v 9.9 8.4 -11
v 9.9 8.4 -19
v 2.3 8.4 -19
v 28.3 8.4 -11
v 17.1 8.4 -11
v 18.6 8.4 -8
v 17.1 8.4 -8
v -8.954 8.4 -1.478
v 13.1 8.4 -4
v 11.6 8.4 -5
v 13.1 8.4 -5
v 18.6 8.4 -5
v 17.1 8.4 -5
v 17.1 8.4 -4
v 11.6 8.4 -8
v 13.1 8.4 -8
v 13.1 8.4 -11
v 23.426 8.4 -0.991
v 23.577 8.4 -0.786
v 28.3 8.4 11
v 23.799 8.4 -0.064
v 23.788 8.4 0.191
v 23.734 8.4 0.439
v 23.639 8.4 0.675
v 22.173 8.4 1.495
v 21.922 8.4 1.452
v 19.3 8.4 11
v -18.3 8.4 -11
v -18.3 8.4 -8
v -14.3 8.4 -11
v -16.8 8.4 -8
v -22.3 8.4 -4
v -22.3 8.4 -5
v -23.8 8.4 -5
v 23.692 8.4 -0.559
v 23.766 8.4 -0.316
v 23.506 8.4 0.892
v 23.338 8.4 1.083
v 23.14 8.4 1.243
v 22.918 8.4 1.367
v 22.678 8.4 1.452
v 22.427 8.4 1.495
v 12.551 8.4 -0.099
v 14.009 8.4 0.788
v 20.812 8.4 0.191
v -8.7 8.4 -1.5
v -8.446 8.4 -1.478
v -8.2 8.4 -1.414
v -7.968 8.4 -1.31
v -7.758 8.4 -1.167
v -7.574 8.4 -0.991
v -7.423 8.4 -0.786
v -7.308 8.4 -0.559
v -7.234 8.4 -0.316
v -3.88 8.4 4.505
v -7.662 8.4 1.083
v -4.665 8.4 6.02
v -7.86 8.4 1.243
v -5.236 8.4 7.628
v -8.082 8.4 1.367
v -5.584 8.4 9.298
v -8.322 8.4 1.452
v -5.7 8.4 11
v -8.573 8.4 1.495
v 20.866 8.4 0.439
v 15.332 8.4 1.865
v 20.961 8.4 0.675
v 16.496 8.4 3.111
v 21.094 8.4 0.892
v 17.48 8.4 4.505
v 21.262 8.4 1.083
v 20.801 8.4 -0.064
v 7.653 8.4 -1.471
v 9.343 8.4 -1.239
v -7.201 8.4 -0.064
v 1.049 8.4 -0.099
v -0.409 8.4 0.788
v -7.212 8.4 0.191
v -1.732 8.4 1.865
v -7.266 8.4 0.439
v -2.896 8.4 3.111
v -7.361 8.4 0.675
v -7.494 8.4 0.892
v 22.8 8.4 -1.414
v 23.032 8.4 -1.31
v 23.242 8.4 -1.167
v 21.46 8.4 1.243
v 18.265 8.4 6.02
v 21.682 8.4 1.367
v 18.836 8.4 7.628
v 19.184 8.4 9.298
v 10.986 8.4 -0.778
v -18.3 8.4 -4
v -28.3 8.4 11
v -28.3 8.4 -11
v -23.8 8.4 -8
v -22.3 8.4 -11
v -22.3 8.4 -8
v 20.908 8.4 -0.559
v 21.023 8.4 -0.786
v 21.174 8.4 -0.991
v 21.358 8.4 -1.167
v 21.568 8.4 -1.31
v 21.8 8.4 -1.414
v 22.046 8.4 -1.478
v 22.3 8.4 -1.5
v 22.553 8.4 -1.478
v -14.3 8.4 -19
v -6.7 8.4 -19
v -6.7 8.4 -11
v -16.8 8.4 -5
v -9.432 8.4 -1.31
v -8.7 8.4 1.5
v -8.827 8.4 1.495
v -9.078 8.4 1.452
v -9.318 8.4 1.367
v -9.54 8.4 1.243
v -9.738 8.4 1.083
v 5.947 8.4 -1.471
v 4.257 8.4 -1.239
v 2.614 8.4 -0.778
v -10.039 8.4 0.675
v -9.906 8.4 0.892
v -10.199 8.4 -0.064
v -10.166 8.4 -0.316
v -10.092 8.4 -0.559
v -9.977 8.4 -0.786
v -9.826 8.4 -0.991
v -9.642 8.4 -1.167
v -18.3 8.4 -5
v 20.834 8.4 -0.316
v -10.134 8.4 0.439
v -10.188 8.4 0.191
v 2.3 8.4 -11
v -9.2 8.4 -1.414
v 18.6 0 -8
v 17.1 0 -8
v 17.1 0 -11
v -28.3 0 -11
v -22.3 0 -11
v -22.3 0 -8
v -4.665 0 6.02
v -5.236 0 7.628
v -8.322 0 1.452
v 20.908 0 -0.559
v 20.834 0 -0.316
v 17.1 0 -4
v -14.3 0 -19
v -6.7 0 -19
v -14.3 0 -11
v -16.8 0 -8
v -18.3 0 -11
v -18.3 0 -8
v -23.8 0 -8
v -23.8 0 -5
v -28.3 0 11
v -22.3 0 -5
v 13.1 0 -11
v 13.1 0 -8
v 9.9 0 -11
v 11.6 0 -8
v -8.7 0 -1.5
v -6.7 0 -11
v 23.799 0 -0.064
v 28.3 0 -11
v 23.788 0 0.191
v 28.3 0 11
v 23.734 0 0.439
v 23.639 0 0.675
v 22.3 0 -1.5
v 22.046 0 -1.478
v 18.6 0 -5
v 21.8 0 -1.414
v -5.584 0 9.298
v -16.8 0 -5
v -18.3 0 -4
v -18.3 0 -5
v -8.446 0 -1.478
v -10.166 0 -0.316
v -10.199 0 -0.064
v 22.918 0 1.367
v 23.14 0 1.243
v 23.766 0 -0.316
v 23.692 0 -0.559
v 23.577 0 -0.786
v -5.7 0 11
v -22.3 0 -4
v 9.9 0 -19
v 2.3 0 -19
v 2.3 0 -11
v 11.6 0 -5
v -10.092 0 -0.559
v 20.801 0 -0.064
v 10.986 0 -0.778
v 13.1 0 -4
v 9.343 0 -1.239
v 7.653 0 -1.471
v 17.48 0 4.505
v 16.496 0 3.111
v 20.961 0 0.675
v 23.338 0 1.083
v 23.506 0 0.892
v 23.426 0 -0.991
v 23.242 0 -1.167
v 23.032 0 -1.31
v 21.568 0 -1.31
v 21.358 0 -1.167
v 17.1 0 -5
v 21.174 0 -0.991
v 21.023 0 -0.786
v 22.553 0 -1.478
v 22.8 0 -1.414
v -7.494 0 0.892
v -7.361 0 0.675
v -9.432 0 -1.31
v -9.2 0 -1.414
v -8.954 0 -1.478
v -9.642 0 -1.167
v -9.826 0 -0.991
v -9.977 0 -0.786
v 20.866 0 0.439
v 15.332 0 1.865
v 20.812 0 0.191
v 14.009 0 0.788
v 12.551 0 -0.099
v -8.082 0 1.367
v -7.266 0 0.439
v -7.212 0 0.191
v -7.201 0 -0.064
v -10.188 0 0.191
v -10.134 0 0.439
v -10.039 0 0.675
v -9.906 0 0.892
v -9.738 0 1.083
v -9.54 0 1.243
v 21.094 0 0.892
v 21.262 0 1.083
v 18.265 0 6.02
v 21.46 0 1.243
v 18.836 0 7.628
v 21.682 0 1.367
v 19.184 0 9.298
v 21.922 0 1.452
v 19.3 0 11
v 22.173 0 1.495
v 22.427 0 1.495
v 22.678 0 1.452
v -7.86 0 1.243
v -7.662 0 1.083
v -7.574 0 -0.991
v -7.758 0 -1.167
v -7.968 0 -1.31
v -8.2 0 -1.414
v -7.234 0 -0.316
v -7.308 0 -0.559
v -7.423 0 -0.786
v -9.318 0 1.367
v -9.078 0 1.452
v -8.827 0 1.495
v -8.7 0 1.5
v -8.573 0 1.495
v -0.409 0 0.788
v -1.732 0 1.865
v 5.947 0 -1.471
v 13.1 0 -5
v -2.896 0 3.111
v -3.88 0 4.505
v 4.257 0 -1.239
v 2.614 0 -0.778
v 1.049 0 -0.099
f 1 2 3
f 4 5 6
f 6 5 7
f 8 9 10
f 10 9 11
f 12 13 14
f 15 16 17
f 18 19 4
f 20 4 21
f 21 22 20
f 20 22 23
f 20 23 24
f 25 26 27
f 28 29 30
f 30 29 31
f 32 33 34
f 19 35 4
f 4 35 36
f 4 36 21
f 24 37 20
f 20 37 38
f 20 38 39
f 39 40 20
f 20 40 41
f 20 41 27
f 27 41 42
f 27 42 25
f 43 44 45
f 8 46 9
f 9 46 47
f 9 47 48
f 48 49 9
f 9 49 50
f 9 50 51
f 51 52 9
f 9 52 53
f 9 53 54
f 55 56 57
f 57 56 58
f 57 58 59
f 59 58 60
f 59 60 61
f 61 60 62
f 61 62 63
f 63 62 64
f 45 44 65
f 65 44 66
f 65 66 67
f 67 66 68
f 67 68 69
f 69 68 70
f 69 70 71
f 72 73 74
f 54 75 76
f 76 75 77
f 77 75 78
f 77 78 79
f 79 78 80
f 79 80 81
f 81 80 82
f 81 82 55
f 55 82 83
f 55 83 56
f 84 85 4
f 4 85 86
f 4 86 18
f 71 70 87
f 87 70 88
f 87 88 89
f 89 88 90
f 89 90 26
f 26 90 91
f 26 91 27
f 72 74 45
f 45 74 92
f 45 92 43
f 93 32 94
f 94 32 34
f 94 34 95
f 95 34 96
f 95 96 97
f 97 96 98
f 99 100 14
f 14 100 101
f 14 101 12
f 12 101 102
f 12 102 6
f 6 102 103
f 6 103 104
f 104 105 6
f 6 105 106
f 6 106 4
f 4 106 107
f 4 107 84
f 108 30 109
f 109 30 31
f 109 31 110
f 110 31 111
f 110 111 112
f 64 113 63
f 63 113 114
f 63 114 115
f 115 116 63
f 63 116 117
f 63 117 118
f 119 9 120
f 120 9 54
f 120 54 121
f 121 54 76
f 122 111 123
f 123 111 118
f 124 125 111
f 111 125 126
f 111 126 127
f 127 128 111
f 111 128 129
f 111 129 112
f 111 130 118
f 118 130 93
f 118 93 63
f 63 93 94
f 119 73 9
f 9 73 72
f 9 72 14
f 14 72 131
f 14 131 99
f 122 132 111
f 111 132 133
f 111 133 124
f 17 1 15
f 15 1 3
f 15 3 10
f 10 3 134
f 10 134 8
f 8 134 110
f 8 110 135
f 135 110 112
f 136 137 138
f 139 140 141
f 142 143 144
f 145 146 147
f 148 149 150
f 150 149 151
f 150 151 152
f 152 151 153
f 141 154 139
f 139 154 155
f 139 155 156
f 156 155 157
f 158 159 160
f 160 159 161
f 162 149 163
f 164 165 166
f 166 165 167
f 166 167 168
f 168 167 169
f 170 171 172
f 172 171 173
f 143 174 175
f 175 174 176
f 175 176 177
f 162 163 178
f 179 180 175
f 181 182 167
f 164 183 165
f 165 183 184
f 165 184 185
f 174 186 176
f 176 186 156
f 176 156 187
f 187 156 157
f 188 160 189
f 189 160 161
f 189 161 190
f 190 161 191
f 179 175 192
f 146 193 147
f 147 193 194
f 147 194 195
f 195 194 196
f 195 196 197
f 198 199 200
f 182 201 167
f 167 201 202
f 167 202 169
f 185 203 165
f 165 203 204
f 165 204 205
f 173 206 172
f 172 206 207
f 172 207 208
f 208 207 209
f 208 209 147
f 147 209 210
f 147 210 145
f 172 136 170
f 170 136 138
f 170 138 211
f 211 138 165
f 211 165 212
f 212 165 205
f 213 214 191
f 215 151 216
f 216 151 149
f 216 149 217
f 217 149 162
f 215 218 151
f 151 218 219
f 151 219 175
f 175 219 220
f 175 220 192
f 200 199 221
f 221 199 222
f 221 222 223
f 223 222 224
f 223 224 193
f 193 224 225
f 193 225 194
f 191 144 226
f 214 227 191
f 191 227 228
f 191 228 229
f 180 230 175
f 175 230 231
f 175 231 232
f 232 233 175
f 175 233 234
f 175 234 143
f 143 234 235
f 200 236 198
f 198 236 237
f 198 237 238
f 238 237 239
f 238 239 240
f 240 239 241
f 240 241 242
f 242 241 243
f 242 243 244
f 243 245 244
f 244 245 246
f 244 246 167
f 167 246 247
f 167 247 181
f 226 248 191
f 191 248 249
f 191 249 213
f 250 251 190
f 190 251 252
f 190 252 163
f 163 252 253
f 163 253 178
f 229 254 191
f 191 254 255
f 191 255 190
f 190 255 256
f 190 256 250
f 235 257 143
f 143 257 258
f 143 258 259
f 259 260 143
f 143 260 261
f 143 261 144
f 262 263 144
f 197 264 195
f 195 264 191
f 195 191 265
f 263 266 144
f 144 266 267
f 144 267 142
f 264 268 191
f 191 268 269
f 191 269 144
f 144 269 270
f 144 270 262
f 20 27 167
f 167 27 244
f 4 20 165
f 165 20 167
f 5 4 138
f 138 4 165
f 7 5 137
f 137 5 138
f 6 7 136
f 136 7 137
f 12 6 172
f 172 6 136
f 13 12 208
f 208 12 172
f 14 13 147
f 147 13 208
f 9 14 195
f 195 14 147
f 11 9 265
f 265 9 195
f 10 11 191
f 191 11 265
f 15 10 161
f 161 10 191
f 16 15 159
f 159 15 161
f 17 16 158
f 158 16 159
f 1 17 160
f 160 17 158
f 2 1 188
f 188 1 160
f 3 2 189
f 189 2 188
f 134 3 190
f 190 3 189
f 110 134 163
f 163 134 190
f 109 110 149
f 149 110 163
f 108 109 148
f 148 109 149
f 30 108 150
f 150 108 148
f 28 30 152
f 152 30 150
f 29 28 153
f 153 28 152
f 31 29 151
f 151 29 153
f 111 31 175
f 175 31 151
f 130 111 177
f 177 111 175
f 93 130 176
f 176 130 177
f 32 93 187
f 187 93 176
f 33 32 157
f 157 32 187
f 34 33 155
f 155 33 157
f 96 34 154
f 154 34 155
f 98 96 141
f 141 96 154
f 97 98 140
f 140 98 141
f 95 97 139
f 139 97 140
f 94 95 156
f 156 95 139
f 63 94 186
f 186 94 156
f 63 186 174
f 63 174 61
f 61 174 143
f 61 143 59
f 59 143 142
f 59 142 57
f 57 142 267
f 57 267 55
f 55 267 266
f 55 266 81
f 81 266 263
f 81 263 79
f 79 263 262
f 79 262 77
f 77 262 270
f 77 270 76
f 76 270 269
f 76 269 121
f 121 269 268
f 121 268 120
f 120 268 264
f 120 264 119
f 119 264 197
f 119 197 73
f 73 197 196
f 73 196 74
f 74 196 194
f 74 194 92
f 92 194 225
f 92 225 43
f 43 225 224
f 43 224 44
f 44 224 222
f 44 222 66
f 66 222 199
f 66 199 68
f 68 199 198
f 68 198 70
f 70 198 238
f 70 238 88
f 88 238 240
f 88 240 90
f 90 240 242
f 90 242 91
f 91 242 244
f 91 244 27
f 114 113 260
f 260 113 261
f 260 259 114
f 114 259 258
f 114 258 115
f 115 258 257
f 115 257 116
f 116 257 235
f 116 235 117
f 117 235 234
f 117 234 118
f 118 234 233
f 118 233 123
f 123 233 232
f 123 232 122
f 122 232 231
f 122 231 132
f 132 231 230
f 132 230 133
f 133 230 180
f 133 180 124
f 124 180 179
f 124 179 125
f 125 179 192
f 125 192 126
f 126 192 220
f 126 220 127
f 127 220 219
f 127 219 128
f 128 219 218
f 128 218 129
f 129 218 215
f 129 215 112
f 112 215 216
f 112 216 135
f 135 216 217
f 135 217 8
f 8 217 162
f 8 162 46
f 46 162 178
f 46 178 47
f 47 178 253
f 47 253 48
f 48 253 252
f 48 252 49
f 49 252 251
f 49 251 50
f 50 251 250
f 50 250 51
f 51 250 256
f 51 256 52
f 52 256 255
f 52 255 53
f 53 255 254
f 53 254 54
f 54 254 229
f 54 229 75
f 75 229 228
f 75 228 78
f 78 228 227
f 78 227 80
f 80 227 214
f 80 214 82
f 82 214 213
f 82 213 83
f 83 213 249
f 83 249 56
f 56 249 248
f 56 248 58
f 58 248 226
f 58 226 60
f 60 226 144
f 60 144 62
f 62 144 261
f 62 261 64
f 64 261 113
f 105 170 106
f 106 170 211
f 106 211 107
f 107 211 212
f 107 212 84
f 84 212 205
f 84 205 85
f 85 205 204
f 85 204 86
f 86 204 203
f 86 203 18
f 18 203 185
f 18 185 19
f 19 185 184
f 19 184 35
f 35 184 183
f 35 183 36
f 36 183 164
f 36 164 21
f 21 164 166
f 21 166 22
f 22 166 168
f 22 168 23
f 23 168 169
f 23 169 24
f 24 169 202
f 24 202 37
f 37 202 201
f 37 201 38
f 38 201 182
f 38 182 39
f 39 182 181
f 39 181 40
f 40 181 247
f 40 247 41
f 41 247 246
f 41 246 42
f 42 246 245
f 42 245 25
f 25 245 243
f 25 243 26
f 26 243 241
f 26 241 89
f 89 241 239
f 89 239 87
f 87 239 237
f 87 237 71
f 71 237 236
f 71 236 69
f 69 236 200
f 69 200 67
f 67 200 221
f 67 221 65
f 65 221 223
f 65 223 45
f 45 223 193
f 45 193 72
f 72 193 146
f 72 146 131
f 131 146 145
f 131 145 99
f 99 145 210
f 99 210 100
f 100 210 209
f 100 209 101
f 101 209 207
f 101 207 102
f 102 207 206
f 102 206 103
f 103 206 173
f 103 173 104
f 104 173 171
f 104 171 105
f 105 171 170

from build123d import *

# Parameters (mm, degrees)
SKETCH1_R           = 1.5
BOSS_EXTRUDE1_DEPTH = 8.4


with BuildPart() as part:
    # Sketch1 → Boss-Extrude1 (new body)
    with BuildSketch(Plane(origin=(0, 0, 0), x_dir=(1, 0, 0), z_dir=(0, 1, 0))):
        with BuildLine():
            Line((-28.3, 11), (-22.3, 11))
            Line((-22.3, 11), (-22.3, 8))
            Line((-22.3, 8), (-23.8, 8))
            Line((-23.8, 8), (-23.8, 5))
            Line((-23.8, 5), (-22.3, 5))
            Line((-22.3, 5), (-22.3, 4))
            Line((-22.3, 4), (-18.3, 4))
            Line((-18.3, 4), (-18.3, 5))
            Line((-18.3, 5), (-16.8, 5))
            Line((-16.8, 5), (-16.8, 8))
            Line((-16.8, 8), (-18.3, 8))
            Line((-18.3, 8), (-18.3, 11))
            Line((-18.3, 11), (-14.3, 11))
            Line((-14.3, 11), (-14.3, 19))
            Line((-14.3, 19), (-6.7, 19))
            Line((-6.7, 19), (-6.7, 11))
            Line((-6.7, 11), (2.3, 11))
            Line((2.3, 11), (2.3, 19))
            Line((2.3, 19), (9.9, 19))
            Line((9.9, 19), (9.9, 11))
            Line((9.9, 11), (13.1, 11))
            Line((13.1, 11), (13.1, 8))
            Line((13.1, 8), (11.6, 8))
            Line((11.6, 8), (11.6, 5))
            Line((11.6, 5), (13.1, 5))
            Line((13.1, 5), (13.1, 4))
            Line((13.1, 4), (17.1, 4))
            Line((17.1, 4), (17.1, 5))
            Line((17.1, 5), (18.6, 5))
            Line((18.6, 5), (18.6, 8))
            Line((18.6, 8), (17.1, 8))
            Line((17.1, 8), (17.1, 11))
            Line((17.1, 11), (28.3, 11))
            Line((28.3, 11), (28.3, -11))
            Line((28.3, -11), (19.3, -11))
            ThreePointArc((19.3, -11), (6.8, 1.5), (-5.7, -11))
            Line((-5.7, -11), (-28.3, -11))
            Line((-28.3, -11), (-28.3, 11))
        make_face()
        with Locations((-8.7, 0)):
            Circle(SKETCH1_R, mode=Mode.SUBTRACT)
        with Locations((22.3, 0)):
            Circle(SKETCH1_R, mode=Mode.SUBTRACT)
    extrude(amount=BOSS_EXTRUDE1_DEPTH)


solid = part.part
